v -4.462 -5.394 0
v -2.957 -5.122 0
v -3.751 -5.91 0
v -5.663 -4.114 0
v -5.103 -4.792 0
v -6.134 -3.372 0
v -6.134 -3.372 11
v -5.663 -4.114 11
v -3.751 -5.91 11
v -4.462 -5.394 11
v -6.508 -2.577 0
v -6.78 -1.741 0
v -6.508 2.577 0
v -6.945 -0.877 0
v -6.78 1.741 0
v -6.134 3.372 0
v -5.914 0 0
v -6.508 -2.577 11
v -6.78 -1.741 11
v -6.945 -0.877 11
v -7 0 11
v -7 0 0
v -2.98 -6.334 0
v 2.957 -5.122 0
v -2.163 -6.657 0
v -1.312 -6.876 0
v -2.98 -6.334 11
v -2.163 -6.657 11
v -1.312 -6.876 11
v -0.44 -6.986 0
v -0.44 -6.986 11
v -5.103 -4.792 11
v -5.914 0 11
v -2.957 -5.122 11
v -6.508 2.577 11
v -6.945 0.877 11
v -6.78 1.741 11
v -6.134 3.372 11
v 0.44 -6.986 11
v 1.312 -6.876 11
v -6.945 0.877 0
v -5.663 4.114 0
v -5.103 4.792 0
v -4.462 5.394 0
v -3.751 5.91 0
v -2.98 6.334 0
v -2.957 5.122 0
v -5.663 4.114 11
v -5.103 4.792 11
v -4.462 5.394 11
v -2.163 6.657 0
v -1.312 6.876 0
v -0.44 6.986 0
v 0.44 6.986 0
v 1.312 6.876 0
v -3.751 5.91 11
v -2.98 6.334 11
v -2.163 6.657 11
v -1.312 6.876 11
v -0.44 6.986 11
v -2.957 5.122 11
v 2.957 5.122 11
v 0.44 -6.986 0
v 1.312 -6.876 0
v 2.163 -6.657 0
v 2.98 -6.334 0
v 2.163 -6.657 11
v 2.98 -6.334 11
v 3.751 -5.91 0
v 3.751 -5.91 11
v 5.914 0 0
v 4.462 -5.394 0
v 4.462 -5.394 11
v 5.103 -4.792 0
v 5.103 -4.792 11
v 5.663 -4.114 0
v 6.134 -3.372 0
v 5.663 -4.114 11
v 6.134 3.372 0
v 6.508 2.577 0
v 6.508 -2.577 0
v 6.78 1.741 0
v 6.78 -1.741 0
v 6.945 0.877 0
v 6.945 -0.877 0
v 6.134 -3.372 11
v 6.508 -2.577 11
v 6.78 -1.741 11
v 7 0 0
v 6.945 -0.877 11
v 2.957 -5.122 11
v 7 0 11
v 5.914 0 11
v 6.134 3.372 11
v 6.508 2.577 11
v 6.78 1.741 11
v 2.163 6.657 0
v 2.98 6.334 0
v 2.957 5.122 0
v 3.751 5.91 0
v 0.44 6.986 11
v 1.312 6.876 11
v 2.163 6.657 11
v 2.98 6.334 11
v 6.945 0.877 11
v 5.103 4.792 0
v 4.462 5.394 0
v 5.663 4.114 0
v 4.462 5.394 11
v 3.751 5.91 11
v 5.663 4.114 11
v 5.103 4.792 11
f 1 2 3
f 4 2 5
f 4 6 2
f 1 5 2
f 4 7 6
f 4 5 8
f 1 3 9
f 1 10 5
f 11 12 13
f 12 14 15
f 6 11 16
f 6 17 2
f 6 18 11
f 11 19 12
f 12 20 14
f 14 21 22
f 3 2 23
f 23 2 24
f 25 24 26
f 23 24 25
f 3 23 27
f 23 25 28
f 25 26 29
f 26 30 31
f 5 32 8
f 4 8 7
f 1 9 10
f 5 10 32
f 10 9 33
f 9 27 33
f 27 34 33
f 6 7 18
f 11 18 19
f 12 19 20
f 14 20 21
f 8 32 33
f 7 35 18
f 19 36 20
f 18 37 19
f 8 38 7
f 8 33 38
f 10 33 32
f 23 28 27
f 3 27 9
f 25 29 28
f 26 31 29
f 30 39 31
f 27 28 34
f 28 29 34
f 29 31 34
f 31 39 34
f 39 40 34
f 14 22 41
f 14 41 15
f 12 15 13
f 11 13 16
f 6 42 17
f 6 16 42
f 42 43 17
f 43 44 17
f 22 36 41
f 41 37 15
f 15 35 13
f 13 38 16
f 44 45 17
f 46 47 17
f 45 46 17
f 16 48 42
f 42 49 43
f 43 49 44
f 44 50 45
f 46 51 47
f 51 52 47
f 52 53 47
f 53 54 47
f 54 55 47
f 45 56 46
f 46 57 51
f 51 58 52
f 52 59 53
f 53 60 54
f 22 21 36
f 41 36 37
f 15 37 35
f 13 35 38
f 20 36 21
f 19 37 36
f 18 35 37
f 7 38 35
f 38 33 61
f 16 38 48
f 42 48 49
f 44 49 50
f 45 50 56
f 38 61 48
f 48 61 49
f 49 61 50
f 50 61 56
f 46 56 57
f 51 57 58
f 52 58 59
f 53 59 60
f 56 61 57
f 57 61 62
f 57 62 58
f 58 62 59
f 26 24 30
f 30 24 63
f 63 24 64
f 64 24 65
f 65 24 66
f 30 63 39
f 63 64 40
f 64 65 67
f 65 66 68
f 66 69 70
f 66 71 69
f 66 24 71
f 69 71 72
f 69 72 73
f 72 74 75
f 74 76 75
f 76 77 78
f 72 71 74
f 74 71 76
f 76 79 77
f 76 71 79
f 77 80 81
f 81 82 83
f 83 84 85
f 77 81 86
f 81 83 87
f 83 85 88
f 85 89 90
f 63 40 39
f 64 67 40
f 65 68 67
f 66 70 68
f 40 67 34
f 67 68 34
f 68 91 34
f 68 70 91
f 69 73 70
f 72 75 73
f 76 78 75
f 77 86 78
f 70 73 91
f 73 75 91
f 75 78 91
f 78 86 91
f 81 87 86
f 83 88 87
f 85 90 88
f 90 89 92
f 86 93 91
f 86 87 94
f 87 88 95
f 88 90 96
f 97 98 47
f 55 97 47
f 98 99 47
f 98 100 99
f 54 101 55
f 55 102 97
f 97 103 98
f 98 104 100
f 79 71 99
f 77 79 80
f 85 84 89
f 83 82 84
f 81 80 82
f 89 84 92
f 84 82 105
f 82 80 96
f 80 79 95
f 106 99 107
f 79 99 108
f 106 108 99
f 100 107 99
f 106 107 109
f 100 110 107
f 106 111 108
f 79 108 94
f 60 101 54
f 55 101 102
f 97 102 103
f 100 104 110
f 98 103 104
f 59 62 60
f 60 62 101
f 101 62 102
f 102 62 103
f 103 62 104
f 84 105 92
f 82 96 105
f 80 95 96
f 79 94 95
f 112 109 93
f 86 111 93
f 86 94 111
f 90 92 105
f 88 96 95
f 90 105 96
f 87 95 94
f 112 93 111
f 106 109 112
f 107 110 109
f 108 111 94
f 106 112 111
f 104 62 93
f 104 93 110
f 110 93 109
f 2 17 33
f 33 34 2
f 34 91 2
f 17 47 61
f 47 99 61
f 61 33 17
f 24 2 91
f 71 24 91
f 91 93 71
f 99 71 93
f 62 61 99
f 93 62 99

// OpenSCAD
// Dimensions in mm
thickness = 11;
pocket_depth = 11;

$fn = 50;
difference() {
    cylinder(r=7,h=thickness);
    translate([0,0,-1]) cylinder(r=3.25,h=thickness+2);
    cylinder(r=5.91425,h=pocket_depth,$fn=6);
}
